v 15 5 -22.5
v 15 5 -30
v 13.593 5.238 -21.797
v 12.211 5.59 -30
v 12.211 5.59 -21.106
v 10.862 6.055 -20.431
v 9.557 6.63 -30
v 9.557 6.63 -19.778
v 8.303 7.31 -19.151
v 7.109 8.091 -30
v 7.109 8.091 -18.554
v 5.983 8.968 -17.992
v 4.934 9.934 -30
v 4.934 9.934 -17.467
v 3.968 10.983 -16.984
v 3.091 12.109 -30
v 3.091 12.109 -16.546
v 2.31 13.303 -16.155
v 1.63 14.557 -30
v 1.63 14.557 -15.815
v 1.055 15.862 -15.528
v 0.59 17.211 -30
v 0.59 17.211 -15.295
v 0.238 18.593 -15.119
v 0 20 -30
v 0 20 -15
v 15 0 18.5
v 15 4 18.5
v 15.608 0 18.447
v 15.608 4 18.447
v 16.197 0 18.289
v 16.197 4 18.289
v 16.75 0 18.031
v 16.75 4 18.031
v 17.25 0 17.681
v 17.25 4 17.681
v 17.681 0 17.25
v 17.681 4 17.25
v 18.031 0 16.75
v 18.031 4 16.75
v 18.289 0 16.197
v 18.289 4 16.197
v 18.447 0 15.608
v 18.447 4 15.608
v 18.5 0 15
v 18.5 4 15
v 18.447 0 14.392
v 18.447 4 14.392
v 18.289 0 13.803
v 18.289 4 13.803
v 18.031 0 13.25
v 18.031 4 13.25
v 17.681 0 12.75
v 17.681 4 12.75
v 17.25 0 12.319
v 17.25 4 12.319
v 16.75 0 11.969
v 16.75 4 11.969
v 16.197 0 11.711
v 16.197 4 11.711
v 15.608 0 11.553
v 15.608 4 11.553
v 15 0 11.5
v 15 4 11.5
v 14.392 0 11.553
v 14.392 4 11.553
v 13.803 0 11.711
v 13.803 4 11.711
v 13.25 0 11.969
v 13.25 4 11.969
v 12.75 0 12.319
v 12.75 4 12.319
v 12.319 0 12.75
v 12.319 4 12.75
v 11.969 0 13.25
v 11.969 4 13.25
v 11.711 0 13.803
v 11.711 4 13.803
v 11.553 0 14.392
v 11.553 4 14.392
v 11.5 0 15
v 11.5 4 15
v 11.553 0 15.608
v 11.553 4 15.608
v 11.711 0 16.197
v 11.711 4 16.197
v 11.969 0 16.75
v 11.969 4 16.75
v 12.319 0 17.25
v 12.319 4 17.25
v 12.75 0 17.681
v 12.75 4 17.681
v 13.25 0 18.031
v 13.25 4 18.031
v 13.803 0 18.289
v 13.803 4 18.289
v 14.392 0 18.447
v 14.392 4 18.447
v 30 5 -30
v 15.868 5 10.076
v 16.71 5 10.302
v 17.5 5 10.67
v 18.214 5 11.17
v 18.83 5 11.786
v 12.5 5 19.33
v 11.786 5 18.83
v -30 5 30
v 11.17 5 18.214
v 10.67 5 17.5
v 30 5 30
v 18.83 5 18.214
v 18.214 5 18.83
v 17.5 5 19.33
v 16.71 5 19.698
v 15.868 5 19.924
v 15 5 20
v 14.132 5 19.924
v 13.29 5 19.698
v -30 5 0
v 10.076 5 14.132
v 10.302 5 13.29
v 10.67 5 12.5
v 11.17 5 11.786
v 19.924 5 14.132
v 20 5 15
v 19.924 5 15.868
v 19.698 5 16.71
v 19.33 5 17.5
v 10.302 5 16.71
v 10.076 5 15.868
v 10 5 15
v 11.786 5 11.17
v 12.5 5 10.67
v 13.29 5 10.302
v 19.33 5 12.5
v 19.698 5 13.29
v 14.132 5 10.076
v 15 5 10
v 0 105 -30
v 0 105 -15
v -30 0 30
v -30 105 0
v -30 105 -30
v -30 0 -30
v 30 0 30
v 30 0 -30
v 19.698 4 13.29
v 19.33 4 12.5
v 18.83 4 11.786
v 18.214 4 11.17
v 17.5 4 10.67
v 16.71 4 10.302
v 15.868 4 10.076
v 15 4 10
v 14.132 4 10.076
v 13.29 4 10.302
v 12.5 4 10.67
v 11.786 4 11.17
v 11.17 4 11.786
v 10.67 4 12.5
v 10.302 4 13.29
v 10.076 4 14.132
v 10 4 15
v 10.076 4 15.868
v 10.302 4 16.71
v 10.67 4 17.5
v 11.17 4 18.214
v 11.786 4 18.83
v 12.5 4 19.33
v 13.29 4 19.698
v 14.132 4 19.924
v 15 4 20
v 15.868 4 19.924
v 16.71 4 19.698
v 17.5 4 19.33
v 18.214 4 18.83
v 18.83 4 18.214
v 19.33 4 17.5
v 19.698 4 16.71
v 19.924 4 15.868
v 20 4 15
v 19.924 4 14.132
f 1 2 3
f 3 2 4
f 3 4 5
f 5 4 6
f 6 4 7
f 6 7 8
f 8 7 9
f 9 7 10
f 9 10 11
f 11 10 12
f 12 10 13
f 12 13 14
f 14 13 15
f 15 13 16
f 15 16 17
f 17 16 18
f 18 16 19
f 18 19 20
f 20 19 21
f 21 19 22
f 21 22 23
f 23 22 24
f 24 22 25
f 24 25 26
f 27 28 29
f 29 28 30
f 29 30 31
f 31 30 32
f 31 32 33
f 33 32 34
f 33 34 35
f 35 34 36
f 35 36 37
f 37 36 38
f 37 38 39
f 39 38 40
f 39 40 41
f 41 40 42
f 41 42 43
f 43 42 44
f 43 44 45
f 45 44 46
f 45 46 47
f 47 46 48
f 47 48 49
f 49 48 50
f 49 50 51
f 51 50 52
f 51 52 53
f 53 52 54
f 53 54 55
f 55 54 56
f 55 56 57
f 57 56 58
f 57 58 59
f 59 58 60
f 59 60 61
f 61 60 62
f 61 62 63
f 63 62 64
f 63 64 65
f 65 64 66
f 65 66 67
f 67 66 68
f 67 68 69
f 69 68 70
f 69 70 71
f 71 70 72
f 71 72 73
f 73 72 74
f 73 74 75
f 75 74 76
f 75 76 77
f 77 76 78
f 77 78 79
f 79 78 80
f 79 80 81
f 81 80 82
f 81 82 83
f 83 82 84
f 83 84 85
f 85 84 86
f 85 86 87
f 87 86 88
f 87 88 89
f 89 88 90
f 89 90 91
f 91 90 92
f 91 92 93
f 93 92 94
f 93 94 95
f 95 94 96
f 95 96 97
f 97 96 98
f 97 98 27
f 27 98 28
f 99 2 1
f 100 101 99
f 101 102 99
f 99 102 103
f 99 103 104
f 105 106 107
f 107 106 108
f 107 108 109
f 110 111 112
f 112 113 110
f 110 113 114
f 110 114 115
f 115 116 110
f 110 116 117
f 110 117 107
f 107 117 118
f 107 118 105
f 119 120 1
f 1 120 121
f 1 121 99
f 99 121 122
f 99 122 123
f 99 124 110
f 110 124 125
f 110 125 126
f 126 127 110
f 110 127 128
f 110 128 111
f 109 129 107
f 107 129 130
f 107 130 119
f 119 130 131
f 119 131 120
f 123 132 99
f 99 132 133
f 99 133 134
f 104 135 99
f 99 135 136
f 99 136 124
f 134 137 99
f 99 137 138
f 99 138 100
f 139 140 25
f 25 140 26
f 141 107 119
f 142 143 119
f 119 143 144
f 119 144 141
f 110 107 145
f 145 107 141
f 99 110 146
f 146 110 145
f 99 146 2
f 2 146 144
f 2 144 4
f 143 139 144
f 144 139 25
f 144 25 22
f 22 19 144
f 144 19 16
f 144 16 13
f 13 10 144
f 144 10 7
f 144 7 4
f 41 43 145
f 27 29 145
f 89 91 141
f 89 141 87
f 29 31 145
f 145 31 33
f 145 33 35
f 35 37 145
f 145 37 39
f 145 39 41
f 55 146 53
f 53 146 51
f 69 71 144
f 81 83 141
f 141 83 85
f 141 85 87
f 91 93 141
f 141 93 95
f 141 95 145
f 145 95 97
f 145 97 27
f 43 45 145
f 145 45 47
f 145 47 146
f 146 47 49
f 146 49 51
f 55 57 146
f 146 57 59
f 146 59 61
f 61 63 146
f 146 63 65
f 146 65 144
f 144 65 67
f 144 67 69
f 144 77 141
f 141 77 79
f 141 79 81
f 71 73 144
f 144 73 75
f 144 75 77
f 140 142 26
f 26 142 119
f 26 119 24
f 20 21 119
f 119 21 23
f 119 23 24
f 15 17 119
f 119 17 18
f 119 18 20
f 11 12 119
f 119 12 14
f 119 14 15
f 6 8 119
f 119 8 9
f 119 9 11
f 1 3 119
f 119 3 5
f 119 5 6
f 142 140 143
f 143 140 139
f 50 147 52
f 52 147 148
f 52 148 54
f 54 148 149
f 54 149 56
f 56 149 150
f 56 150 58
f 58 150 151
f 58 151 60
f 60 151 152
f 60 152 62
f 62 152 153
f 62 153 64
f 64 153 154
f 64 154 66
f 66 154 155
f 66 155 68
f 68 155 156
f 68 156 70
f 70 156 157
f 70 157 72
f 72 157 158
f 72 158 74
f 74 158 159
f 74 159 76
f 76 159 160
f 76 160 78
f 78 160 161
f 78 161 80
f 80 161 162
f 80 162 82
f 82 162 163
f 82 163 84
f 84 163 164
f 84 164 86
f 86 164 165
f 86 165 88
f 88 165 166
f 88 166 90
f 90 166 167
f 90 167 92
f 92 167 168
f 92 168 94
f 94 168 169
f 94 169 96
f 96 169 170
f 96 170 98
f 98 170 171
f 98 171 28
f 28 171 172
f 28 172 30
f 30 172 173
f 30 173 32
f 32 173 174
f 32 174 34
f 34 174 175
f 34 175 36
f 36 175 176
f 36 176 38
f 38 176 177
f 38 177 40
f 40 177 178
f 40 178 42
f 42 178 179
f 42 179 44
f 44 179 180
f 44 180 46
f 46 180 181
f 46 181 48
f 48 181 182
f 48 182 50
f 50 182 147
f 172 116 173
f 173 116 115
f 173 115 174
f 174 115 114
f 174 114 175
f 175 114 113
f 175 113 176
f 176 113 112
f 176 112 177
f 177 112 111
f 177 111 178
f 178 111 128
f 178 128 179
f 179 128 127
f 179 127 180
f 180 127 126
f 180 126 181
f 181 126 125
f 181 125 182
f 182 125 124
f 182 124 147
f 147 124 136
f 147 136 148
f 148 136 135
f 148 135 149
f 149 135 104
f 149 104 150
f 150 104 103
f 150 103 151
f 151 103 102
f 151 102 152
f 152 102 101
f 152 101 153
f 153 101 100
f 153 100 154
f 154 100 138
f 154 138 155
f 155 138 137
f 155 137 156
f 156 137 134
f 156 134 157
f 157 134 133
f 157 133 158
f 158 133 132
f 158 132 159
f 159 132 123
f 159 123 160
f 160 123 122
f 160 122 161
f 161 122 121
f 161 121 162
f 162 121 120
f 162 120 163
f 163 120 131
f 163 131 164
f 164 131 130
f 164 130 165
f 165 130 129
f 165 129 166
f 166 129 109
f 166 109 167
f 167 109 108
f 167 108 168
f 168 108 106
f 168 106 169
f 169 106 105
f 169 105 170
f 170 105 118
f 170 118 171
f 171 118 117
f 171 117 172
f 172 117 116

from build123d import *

# Parameters (mm, degrees)
SKETCH1_W           = 60
SKETCH1_H           = 60
BOSS_EXTRUDE1_DEPTH = 5
BOSS_EXTRUDE2_DEPTH = 100
SKETCH3_W           = 15
SKETCH3_H           = 15
BOSS_EXTRUDE3_DEPTH = 15
CUT_EXTRUDE1_DEPTH  = 119.11011811
SKETCH5_R           = 3.5
CUT_EXTRUDE2_DEPTH  = 109.627804912
SKETCH6_R           = 5
CUT_EXTRUDE3_DEPTH  = 1
CUT_EXTRUDE4_DEPTH  = 109.627804912


with BuildPart() as part:
    # Sketch1 → Boss-Extrude1 (new body)
    with BuildSketch(Plane(origin=(0, 0, 0), x_dir=(1, 0, 0), z_dir=(0, 1, 0))):
        Rectangle(SKETCH1_W, SKETCH1_H)
    extrude(amount=BOSS_EXTRUDE1_DEPTH)

    # Sketch2 → Boss-Extrude2 (add)
    with BuildSketch(Plane(origin=(0, 5, 0), x_dir=(1, 0, 0), z_dir=(0, 1, 0))):
        Polygon((-30, 30), (-30, 0), (0, 15), (0, 30), align=None)
    extrude(amount=BOSS_EXTRUDE2_DEPTH)

    # Sketch3 → Boss-Extrude3 (add)
    with BuildSketch(Plane(origin=(0, 5, 0), x_dir=(1, 0, 0), z_dir=(0, 1, 0))):
        with Locations((7.5, 22.5)):
            Rectangle(SKETCH3_W, SKETCH3_H)
    extrude(amount=BOSS_EXTRUDE3_DEPTH)

    # Sketch4 → Cut-Extrude1 (cut, through all)
    with BuildSketch(Plane.XY.offset(-15)):
        with BuildLine():
            Line((0, 20), (15, 20))
            Line((15, 20), (15, 5))
            ThreePointArc((15, 5), (4.934047308, 9.934047308), (0, 20))
        make_face()
    extrude(amount=-CUT_EXTRUDE1_DEPTH, mode=Mode.SUBTRACT)

    # Sketch5 → Cut-Extrude2 (cut, through all)
    with BuildSketch(Plane(origin=(0, 5, 0), x_dir=(1, 0, 0), z_dir=(0, 1, 0))):
        with Locations(Location((15, -15, 0), (0, 0, 270))):
            Circle(SKETCH5_R)
    extrude(amount=-CUT_EXTRUDE2_DEPTH, mode=Mode.SUBTRACT)

    # Sketch6 → Cut-Extrude3 (cut)
    with BuildSketch(Plane(origin=(0, 5, 0), x_dir=(1, 0, 0), z_dir=(0, 1, 0))):
        with Locations(Location((15, -15, 0), (0, 0, 270))):
            Circle(SKETCH6_R)
    extrude(amount=-CUT_EXTRUDE3_DEPTH, mode=Mode.SUBTRACT)

    # Sketch7 → Cut-Extrude4 (cut, through all)
    with BuildSketch(Plane(origin=(0, 5, 0), x_dir=(1, 0, 0), z_dir=(0, 1, 0))):
        Polygon((0, 15), (30, 30), (30, 7.119616729), (0, 7.119616729), align=None)
    extrude(amount=CUT_EXTRUDE4_DEPTH, mode=Mode.SUBTRACT)


solid = part.part
